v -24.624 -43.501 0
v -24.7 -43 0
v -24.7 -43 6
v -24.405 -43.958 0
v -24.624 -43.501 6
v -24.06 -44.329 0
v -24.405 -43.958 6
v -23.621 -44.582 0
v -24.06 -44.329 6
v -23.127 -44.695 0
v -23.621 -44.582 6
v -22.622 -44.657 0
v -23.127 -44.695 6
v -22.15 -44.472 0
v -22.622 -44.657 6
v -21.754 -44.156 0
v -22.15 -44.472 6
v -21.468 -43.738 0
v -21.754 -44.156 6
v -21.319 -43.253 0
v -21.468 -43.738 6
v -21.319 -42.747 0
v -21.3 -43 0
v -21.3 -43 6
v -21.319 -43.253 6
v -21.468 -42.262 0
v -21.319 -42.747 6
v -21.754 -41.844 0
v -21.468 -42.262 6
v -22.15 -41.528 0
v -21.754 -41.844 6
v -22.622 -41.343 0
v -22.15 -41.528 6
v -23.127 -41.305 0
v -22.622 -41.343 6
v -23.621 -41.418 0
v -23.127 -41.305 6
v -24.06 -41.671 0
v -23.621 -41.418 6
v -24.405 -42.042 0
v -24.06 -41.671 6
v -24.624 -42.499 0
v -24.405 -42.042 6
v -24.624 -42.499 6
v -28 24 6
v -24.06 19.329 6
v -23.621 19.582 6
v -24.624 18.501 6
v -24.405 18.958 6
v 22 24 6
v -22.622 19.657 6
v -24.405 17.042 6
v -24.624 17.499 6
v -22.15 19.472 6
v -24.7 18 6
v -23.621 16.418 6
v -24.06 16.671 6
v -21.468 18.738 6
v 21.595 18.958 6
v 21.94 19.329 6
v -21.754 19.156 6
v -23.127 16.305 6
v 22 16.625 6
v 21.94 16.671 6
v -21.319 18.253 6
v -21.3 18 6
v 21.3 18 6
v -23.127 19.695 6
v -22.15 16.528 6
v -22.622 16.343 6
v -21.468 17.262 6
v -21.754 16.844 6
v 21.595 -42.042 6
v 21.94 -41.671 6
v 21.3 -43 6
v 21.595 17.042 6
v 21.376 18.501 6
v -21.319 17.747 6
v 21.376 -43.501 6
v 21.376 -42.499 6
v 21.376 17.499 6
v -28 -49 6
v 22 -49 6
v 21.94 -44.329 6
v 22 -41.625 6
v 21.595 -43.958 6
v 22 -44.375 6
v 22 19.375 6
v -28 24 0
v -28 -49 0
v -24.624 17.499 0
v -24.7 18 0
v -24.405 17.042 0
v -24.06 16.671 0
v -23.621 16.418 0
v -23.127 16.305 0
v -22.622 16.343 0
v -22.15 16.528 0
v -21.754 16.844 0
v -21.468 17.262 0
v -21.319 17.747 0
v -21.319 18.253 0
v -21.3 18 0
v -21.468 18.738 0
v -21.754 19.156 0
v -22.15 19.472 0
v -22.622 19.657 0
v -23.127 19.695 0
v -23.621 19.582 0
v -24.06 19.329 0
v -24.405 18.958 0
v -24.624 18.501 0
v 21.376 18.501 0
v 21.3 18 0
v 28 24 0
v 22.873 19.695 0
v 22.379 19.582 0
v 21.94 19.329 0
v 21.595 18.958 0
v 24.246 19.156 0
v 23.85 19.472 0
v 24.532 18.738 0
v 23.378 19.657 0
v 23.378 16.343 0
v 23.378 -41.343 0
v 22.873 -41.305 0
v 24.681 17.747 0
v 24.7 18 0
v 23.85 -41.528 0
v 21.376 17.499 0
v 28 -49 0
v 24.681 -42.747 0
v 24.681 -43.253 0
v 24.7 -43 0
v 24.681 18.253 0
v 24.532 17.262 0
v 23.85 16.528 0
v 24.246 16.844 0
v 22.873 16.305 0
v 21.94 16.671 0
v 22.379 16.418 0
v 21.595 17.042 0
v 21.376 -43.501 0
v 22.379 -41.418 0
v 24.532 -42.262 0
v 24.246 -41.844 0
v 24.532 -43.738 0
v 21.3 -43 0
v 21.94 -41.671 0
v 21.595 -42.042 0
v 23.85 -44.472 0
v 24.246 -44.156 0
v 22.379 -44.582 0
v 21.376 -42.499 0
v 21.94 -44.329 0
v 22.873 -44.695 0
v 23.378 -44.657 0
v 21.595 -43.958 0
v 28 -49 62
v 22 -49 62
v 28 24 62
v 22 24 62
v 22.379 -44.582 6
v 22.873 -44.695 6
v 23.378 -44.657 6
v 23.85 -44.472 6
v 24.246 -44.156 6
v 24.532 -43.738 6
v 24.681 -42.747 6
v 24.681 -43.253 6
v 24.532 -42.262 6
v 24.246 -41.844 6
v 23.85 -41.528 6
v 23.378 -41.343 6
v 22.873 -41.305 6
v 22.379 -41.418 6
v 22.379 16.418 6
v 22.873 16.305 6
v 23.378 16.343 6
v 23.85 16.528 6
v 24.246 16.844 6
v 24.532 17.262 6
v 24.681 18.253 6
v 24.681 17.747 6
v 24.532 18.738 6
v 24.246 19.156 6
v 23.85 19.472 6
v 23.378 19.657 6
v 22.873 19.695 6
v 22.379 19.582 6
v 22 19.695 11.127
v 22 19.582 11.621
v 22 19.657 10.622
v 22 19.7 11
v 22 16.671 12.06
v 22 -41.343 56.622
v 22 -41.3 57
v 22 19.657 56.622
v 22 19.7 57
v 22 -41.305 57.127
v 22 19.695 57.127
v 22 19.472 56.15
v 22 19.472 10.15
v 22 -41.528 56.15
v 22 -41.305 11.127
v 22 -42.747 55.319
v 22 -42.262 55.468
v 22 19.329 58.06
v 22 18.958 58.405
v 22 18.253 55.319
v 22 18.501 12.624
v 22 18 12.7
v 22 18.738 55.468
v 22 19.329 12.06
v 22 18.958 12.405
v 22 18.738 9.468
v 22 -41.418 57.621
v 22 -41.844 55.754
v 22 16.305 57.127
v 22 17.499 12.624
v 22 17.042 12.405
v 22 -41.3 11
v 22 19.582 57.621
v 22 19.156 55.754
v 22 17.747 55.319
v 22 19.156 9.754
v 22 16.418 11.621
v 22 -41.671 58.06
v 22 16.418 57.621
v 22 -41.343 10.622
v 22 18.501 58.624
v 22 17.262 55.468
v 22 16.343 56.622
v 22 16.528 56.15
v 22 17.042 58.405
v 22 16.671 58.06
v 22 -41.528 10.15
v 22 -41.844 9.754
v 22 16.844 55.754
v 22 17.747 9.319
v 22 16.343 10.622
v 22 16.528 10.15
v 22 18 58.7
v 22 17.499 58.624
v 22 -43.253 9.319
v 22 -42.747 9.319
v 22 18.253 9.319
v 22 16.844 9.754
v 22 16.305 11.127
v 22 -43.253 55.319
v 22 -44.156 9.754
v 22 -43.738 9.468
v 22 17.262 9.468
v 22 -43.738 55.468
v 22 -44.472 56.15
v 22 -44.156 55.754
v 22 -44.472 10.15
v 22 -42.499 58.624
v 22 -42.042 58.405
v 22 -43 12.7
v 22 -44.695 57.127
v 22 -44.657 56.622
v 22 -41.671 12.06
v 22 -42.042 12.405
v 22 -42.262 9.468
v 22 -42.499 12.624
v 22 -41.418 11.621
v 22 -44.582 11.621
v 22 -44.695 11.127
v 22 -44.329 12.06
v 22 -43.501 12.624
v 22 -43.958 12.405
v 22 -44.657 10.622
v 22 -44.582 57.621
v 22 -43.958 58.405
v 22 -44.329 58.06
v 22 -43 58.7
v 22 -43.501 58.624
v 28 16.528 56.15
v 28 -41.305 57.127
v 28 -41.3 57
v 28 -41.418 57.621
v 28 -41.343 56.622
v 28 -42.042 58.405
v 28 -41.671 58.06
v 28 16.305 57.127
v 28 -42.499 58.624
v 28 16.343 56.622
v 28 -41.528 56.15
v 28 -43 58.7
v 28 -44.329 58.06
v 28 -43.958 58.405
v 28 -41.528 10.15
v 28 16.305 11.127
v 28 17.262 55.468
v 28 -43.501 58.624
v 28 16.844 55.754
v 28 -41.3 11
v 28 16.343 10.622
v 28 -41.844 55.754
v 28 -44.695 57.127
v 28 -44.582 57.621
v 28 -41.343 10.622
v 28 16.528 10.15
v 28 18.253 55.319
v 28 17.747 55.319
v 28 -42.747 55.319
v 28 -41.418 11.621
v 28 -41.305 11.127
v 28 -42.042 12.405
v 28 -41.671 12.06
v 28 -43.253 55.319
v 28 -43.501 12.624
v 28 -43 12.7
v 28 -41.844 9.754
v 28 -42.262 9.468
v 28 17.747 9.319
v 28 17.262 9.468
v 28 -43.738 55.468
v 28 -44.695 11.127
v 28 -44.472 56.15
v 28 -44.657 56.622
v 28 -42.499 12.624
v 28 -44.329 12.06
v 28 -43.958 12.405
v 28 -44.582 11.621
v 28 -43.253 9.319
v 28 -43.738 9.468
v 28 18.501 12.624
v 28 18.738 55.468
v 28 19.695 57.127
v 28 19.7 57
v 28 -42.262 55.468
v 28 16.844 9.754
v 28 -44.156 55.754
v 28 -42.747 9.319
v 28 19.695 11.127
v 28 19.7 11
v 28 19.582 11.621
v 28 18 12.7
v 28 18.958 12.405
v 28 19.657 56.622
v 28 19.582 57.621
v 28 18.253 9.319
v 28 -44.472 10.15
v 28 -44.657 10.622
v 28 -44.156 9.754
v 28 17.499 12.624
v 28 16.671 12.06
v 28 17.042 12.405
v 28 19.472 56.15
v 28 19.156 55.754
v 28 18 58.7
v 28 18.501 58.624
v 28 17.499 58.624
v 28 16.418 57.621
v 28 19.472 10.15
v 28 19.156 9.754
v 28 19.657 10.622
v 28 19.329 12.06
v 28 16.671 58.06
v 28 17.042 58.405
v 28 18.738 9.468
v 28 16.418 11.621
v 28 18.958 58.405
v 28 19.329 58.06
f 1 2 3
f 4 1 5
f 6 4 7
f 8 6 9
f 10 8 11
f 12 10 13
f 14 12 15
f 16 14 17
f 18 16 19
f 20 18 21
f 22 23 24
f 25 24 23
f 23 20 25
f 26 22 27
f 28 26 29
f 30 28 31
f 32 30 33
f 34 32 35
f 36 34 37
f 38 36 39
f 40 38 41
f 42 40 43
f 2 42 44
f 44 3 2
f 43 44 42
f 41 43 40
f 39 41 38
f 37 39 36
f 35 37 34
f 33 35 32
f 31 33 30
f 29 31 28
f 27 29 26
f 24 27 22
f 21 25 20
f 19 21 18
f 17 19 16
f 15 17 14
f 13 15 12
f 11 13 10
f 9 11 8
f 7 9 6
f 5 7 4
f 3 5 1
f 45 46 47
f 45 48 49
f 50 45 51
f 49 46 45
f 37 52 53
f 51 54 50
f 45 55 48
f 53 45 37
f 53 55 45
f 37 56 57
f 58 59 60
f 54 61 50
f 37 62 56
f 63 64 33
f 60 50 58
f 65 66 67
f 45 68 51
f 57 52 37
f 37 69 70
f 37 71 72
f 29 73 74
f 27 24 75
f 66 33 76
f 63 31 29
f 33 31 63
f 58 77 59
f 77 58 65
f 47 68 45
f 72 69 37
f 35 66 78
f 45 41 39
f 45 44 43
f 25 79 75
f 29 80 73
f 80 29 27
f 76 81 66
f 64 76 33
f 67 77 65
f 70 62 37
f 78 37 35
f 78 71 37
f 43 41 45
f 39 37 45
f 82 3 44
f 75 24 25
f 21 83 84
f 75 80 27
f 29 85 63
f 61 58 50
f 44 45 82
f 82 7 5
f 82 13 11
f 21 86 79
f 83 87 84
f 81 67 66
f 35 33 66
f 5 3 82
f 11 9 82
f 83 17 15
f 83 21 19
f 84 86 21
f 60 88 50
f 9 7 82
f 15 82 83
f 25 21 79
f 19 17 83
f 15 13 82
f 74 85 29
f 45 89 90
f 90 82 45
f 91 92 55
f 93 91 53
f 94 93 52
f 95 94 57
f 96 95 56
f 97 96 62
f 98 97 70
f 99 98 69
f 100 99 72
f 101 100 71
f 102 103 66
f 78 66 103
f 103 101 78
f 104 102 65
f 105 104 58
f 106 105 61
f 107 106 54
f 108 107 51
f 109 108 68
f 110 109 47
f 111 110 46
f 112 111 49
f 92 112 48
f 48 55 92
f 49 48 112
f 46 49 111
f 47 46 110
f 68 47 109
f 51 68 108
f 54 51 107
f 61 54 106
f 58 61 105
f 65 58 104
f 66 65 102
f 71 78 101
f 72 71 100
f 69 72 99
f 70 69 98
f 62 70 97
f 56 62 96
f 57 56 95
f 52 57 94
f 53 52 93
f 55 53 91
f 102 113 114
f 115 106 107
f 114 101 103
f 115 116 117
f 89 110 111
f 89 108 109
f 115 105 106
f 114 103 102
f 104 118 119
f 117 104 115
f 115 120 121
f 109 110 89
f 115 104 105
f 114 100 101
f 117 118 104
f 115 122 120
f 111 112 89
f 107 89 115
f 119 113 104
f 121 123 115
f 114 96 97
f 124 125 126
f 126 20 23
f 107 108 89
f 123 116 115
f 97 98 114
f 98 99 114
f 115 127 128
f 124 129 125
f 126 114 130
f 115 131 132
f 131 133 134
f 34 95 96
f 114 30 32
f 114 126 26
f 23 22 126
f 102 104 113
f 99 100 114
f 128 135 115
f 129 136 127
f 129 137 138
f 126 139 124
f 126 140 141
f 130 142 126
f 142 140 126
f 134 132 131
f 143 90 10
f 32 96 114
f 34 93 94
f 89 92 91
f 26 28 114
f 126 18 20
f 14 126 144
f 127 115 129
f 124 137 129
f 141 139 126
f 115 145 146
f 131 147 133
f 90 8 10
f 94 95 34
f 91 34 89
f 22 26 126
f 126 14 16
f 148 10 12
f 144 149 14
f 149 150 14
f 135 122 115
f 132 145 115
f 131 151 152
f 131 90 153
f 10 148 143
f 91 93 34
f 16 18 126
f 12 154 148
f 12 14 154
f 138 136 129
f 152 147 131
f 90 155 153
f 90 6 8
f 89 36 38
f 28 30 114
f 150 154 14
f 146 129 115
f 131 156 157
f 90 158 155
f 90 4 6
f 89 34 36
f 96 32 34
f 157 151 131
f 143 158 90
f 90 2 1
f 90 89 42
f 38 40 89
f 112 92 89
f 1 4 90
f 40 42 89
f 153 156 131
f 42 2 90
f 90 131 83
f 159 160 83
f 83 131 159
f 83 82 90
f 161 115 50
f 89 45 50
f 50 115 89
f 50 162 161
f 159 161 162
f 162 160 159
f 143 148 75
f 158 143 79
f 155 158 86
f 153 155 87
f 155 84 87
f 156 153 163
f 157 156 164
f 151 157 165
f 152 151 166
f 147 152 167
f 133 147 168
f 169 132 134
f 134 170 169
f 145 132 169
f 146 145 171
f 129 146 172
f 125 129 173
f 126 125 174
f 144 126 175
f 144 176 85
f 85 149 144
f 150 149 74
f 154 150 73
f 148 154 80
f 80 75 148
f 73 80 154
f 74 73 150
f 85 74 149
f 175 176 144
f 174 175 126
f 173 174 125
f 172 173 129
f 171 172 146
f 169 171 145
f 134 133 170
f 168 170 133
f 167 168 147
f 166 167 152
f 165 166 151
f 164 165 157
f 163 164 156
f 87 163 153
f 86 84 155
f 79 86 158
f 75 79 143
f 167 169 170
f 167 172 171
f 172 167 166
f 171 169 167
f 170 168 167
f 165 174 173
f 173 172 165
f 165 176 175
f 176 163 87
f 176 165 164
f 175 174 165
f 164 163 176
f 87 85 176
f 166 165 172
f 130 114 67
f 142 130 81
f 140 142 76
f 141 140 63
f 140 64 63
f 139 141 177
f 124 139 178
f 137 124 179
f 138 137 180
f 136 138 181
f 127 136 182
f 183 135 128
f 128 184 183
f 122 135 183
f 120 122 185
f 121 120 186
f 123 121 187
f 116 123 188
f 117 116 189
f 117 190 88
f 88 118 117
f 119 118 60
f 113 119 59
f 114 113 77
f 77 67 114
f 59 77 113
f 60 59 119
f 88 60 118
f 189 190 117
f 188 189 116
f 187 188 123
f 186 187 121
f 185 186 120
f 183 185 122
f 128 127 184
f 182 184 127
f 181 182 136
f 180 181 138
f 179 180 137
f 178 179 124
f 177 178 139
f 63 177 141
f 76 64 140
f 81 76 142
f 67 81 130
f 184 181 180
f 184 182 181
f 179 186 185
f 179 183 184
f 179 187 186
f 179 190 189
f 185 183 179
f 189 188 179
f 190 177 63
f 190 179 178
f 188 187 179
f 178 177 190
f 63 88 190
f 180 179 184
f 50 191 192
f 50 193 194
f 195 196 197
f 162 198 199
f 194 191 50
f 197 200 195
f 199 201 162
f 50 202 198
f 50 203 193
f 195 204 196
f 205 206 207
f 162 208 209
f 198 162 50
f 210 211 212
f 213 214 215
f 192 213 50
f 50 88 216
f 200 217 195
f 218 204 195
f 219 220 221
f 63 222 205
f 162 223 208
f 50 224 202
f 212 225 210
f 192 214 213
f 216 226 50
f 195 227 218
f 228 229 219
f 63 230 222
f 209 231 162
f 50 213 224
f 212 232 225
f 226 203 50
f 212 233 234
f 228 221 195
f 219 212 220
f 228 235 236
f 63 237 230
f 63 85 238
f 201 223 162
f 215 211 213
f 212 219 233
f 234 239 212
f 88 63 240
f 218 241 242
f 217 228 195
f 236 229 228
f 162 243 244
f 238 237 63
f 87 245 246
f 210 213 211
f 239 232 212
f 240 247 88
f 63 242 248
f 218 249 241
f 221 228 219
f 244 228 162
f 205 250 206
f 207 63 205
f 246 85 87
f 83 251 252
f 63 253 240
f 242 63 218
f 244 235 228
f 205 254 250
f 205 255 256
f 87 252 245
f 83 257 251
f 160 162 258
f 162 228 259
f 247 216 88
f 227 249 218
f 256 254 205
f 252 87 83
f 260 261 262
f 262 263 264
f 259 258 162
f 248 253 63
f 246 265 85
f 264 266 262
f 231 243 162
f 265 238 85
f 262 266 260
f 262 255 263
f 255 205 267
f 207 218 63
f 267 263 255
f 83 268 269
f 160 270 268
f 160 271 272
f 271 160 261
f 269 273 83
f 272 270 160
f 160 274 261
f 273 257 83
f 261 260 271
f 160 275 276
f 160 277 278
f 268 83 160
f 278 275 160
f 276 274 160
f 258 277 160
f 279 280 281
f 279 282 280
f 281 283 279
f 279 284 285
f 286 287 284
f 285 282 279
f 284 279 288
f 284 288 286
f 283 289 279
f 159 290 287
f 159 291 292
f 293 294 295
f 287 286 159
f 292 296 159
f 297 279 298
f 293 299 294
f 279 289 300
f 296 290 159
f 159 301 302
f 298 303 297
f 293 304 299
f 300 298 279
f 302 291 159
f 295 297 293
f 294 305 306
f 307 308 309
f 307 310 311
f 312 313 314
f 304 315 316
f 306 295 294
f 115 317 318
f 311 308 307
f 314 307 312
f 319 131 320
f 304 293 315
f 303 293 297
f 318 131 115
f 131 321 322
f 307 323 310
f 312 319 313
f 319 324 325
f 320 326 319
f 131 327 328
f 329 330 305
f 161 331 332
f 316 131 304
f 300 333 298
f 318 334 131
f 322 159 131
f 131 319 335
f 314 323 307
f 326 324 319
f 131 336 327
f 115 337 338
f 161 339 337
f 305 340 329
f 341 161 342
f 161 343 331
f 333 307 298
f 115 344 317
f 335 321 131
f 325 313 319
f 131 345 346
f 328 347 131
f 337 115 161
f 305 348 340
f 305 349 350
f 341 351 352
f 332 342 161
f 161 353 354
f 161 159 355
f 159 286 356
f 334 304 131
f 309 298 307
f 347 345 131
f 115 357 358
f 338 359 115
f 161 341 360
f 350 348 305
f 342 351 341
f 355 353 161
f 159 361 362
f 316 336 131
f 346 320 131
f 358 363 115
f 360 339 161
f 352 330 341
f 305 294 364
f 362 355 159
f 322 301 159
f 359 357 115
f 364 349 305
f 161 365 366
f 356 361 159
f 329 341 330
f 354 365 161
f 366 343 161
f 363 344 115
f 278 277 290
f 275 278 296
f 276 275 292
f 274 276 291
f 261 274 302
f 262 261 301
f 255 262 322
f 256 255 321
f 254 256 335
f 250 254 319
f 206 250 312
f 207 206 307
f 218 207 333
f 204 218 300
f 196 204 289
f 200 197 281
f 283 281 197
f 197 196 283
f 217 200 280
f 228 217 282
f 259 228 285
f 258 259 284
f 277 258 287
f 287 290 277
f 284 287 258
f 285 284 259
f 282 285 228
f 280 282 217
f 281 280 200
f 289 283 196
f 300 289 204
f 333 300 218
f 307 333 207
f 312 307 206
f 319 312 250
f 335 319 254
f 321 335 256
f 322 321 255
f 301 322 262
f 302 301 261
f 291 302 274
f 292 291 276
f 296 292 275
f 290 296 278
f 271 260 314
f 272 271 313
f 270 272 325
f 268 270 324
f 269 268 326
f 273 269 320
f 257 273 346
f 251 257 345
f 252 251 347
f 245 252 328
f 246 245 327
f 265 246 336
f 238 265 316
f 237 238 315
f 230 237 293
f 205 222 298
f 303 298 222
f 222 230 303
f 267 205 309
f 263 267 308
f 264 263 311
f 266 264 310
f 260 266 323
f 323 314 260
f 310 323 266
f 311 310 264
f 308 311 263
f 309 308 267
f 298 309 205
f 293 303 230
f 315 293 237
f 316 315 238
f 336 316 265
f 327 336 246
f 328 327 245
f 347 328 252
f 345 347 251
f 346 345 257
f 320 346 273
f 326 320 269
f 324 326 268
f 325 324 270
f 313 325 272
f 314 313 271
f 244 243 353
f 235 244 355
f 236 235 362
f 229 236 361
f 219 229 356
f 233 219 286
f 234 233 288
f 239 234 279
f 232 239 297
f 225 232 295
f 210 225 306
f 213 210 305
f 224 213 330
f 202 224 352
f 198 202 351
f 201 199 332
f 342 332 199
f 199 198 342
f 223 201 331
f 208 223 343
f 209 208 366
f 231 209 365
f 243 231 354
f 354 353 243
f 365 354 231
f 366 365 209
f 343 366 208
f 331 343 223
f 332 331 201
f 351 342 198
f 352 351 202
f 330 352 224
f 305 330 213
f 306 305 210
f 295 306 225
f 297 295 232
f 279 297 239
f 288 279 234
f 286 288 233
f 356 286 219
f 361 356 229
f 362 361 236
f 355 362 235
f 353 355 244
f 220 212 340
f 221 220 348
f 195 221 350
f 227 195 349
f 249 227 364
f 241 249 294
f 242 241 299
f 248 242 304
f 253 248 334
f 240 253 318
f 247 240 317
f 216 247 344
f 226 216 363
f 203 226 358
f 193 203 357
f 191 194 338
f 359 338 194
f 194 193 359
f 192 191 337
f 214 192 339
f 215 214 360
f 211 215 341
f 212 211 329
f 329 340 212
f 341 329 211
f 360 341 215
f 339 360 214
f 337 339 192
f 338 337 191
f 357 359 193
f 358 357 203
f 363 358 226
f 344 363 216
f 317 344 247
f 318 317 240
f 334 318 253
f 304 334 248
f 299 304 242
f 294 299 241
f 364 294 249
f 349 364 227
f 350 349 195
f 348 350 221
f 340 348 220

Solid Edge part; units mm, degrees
sketch "Sketch1" plane through (0, 0, 0) normal (0, 0, 1) x (1, 0, 0)
  line L0 (-28, -49) -> (28, -49)
  line L1 (28, -49) -> (28, 24)
  line L2 (28, 24) -> (-28, 24)
  line L3 (-28, 24) -> (-28, -49)
  circle A0 centre (-23, -43) radius 1.7
  circle A1 centre (23, -43) radius 1.7
  circle A2 centre (-23, 18) radius 1.7
  circle A3 centre (23, 18) radius 1.7
extrude "Protrusion1" add sketch "Sketch1" along normal blind 6
sketch "Sketch2" plane through (0, 0, 6) normal (0, 0, 1) x (1, 0, 0)
  line L0 (22, -49) -> (28, -49)
  line L1 (28, -49) -> (28, 24)
  line L2 (28, 24) -> (22, 24)
  line L3 (22, 24) -> (22, -49)
extrude "ExtrudedProtrusion_2" add sketch "Sketch2" along normal blind 56
sketch "Sketch3" plane through (22, 0, 0) normal (1, 0, 0) x (0, 1, 0)
  circle A0 centre (-43, 57) radius 1.7
  circle A1 centre (-43, 11) radius 1.7
  circle A2 centre (18, 57) radius 1.7
  circle A3 centre (18, 11) radius 1.7
extrude "ExtrudedCutout_1" cut sketch "Sketch3" along normal blind 6
